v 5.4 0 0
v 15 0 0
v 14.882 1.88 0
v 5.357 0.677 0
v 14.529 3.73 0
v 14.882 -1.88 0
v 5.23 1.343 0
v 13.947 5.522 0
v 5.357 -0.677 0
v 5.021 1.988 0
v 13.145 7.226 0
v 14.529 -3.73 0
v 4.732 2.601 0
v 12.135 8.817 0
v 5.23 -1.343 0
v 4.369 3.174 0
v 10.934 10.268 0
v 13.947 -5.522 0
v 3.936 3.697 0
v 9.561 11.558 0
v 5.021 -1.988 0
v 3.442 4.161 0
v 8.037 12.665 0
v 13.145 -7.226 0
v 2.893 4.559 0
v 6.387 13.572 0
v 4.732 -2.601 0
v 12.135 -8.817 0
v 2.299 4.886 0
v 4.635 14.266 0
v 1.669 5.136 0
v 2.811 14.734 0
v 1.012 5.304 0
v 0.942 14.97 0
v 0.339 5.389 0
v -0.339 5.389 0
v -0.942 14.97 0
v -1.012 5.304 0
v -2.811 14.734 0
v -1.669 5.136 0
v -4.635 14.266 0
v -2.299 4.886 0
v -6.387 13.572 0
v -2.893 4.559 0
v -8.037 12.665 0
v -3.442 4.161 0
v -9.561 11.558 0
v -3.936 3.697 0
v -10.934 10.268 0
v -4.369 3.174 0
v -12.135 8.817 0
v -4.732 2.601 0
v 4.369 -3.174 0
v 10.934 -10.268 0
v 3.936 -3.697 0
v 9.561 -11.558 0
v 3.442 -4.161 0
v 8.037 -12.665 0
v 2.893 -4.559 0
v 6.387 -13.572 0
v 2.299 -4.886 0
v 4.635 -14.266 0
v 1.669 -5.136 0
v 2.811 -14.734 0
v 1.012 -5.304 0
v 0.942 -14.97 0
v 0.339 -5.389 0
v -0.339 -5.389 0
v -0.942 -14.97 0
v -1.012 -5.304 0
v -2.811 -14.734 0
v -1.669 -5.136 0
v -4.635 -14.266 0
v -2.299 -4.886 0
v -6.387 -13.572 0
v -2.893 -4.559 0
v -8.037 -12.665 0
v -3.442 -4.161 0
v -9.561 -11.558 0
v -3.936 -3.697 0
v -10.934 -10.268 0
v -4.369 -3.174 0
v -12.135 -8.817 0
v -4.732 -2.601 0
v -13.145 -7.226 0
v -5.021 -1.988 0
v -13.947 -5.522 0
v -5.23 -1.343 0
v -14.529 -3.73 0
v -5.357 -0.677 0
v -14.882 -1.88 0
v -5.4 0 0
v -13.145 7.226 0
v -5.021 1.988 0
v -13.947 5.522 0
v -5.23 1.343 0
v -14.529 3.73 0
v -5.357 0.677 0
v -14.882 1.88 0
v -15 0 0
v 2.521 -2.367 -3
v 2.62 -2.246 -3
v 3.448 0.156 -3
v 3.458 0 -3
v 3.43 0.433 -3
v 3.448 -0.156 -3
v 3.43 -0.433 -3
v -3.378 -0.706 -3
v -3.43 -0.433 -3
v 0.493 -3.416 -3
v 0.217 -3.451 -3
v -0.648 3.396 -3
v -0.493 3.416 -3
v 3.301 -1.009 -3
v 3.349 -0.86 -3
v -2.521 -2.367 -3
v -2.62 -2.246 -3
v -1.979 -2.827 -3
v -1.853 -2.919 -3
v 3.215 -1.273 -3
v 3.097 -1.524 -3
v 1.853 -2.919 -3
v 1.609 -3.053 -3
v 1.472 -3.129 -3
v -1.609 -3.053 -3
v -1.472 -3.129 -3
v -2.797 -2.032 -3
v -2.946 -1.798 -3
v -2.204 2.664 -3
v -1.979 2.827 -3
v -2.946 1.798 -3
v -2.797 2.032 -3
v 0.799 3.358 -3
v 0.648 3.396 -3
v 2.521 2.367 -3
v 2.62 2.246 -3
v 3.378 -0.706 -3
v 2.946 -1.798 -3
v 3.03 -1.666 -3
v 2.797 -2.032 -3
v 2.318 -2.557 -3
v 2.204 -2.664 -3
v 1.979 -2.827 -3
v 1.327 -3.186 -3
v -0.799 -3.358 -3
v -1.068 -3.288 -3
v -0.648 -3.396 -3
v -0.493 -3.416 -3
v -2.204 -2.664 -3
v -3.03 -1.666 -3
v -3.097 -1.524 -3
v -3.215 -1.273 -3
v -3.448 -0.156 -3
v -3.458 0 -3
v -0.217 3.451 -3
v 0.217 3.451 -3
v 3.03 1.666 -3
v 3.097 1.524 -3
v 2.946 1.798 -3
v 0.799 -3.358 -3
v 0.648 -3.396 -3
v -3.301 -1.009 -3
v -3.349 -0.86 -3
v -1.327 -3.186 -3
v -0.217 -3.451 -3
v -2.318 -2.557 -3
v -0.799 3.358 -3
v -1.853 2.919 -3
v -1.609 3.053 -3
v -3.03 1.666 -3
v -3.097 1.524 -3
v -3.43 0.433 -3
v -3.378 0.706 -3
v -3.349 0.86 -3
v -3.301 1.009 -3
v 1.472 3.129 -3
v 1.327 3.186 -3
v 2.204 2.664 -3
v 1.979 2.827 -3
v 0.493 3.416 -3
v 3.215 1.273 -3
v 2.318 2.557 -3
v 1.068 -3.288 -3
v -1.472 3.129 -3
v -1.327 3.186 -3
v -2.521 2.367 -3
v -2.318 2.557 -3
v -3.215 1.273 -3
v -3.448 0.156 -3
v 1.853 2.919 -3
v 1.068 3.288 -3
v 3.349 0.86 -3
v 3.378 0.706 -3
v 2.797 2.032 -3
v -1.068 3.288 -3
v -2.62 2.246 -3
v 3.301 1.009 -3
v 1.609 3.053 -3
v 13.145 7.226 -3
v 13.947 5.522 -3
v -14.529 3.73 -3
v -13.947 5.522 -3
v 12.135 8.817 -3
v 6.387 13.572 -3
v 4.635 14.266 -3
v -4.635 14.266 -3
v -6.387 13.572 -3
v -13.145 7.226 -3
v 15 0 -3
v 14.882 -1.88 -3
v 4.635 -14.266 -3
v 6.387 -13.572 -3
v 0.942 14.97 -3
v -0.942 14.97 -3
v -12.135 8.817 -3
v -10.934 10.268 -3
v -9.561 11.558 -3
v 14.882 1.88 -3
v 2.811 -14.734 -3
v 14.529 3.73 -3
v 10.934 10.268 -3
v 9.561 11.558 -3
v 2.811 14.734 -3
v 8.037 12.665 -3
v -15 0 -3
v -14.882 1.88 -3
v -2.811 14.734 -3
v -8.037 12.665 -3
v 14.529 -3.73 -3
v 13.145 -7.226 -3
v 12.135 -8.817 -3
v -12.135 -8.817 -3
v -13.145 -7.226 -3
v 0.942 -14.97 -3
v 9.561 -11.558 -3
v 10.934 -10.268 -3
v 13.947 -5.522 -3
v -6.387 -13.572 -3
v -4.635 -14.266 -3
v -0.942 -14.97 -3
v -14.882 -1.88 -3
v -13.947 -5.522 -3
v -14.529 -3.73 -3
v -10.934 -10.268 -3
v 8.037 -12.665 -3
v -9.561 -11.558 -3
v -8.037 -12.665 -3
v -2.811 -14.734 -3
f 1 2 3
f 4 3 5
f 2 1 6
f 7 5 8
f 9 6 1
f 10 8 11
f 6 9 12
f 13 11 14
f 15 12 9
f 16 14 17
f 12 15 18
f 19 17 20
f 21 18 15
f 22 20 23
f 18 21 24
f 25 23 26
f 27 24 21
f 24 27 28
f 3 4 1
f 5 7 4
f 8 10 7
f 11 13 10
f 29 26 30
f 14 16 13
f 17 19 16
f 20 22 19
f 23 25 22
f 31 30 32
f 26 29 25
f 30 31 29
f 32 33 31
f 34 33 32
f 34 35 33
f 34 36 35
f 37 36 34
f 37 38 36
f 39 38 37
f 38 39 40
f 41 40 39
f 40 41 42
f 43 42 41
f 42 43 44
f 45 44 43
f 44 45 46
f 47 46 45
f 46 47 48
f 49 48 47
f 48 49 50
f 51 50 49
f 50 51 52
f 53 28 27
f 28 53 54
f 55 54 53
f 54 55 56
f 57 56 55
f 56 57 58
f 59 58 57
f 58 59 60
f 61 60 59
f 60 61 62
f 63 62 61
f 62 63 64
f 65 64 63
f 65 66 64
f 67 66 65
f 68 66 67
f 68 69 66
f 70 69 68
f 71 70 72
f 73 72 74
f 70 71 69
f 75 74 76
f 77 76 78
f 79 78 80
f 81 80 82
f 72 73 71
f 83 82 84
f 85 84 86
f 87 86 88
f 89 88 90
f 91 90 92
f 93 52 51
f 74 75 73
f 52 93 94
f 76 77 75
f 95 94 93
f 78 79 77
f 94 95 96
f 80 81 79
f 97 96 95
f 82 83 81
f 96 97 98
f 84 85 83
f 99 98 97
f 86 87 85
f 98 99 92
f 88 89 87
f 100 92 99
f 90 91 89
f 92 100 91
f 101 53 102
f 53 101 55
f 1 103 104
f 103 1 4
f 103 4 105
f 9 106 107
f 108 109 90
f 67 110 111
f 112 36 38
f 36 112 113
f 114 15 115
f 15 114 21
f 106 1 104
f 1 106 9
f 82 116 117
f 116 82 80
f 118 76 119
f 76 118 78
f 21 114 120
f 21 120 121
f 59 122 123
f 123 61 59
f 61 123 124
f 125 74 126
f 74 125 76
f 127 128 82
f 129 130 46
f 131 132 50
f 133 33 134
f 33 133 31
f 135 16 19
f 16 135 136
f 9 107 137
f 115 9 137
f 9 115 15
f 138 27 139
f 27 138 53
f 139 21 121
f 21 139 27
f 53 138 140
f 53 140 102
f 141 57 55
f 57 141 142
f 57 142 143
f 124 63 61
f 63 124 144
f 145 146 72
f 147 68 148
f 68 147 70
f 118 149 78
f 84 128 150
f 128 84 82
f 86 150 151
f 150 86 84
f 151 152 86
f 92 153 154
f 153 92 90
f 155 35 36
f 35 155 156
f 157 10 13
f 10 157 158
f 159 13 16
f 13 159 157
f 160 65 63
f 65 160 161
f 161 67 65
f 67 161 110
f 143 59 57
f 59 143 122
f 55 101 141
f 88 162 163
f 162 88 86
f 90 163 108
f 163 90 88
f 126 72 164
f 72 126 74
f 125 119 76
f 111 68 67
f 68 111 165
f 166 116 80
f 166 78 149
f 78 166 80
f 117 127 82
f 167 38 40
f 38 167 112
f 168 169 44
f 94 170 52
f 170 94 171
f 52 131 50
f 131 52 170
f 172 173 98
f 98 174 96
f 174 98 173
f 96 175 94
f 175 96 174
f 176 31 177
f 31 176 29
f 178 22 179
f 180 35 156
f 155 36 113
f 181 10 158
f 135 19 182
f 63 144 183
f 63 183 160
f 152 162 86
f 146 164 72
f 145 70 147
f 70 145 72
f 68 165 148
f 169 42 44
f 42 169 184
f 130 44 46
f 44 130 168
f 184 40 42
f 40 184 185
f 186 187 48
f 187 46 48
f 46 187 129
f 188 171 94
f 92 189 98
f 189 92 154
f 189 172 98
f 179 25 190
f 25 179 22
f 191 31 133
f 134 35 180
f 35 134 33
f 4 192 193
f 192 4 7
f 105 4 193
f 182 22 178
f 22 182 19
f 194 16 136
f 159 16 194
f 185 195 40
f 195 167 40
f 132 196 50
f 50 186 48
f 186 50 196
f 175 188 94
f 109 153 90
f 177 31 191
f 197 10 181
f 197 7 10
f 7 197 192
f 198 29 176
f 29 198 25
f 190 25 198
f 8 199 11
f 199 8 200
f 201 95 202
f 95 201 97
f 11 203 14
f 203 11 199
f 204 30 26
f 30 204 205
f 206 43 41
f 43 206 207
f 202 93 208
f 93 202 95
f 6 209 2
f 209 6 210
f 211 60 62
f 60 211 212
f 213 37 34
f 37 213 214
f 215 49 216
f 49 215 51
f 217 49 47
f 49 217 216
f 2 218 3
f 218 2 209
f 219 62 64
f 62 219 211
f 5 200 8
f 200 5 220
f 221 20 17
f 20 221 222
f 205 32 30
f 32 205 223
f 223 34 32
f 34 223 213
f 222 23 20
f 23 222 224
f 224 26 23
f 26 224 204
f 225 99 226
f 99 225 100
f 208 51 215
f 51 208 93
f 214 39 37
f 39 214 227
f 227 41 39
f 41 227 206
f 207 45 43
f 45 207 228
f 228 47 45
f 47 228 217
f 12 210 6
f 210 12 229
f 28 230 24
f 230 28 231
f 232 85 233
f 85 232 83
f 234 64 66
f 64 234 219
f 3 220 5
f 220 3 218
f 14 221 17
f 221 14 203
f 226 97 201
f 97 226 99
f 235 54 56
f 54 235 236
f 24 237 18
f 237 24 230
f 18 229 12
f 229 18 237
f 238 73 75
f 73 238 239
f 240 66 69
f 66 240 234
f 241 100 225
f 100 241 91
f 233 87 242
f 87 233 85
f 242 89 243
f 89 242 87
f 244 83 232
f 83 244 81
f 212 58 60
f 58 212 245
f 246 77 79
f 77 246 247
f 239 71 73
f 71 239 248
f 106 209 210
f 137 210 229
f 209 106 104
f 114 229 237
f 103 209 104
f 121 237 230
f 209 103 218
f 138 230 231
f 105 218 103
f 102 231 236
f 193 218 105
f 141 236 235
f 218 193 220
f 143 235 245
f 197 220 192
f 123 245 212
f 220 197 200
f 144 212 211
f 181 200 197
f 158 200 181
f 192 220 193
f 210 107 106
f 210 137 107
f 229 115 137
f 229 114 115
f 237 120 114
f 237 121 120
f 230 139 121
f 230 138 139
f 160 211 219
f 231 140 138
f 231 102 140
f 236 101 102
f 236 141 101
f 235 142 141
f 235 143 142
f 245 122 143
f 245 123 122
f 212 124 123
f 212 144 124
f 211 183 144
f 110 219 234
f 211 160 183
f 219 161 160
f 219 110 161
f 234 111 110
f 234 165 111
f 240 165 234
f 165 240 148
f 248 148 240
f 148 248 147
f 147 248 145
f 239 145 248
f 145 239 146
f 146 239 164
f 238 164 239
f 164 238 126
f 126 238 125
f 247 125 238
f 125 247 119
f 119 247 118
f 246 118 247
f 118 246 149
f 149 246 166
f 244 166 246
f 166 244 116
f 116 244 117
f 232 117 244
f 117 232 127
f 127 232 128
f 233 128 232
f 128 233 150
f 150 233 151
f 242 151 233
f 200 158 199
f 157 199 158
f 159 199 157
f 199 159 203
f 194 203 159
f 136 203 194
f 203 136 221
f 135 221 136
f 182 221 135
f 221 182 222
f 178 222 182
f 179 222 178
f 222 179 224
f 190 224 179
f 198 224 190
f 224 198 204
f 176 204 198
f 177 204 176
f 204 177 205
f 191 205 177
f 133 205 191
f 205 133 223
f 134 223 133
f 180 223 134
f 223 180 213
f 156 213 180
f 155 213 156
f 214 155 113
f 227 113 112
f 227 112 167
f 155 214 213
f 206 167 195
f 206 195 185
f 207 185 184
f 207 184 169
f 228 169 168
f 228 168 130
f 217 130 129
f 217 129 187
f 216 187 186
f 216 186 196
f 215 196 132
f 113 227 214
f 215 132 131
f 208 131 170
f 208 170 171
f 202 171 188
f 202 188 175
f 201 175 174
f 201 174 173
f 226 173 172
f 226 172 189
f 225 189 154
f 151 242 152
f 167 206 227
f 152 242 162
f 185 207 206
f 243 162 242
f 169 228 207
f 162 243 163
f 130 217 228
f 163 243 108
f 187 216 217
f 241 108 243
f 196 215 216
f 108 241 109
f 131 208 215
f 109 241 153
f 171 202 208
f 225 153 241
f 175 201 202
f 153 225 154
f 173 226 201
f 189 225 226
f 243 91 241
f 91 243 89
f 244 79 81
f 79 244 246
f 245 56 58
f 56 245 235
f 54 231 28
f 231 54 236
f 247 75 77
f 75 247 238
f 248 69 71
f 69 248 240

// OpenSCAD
$fn = 50;


difference() {
	union() {
		translate(v = [0, 0, -3.0000000000]) {
			cylinder(h = 3, r = 15.0000000000);
		}
	}
	union() {
		translate(v = [0, 0, 0]) {
			rotate(a = [0, 0, 0]) {
				difference() {
					union() {
						translate(v = [0, 0, -3.0000000000]) {
							cylinder(h = 3, r = 2.6000000000);
						}
						translate(v = [0, 0, -3.9000000000]) {
							cylinder(h = 3.9000000000, r1 = 2.8750000000, r2 = 5.4000000000);
						}
						translate(v = [0, 0, -3.0000000000]) {
							cylinder(h = 3, r = 2.8750000000);
						}
						translate(v = [0, 0, -3.0000000000]) {
							cylinder(h = 3, r = 2.6000000000);
						}
					}
					union();
				}
			}
		}
	}
}
